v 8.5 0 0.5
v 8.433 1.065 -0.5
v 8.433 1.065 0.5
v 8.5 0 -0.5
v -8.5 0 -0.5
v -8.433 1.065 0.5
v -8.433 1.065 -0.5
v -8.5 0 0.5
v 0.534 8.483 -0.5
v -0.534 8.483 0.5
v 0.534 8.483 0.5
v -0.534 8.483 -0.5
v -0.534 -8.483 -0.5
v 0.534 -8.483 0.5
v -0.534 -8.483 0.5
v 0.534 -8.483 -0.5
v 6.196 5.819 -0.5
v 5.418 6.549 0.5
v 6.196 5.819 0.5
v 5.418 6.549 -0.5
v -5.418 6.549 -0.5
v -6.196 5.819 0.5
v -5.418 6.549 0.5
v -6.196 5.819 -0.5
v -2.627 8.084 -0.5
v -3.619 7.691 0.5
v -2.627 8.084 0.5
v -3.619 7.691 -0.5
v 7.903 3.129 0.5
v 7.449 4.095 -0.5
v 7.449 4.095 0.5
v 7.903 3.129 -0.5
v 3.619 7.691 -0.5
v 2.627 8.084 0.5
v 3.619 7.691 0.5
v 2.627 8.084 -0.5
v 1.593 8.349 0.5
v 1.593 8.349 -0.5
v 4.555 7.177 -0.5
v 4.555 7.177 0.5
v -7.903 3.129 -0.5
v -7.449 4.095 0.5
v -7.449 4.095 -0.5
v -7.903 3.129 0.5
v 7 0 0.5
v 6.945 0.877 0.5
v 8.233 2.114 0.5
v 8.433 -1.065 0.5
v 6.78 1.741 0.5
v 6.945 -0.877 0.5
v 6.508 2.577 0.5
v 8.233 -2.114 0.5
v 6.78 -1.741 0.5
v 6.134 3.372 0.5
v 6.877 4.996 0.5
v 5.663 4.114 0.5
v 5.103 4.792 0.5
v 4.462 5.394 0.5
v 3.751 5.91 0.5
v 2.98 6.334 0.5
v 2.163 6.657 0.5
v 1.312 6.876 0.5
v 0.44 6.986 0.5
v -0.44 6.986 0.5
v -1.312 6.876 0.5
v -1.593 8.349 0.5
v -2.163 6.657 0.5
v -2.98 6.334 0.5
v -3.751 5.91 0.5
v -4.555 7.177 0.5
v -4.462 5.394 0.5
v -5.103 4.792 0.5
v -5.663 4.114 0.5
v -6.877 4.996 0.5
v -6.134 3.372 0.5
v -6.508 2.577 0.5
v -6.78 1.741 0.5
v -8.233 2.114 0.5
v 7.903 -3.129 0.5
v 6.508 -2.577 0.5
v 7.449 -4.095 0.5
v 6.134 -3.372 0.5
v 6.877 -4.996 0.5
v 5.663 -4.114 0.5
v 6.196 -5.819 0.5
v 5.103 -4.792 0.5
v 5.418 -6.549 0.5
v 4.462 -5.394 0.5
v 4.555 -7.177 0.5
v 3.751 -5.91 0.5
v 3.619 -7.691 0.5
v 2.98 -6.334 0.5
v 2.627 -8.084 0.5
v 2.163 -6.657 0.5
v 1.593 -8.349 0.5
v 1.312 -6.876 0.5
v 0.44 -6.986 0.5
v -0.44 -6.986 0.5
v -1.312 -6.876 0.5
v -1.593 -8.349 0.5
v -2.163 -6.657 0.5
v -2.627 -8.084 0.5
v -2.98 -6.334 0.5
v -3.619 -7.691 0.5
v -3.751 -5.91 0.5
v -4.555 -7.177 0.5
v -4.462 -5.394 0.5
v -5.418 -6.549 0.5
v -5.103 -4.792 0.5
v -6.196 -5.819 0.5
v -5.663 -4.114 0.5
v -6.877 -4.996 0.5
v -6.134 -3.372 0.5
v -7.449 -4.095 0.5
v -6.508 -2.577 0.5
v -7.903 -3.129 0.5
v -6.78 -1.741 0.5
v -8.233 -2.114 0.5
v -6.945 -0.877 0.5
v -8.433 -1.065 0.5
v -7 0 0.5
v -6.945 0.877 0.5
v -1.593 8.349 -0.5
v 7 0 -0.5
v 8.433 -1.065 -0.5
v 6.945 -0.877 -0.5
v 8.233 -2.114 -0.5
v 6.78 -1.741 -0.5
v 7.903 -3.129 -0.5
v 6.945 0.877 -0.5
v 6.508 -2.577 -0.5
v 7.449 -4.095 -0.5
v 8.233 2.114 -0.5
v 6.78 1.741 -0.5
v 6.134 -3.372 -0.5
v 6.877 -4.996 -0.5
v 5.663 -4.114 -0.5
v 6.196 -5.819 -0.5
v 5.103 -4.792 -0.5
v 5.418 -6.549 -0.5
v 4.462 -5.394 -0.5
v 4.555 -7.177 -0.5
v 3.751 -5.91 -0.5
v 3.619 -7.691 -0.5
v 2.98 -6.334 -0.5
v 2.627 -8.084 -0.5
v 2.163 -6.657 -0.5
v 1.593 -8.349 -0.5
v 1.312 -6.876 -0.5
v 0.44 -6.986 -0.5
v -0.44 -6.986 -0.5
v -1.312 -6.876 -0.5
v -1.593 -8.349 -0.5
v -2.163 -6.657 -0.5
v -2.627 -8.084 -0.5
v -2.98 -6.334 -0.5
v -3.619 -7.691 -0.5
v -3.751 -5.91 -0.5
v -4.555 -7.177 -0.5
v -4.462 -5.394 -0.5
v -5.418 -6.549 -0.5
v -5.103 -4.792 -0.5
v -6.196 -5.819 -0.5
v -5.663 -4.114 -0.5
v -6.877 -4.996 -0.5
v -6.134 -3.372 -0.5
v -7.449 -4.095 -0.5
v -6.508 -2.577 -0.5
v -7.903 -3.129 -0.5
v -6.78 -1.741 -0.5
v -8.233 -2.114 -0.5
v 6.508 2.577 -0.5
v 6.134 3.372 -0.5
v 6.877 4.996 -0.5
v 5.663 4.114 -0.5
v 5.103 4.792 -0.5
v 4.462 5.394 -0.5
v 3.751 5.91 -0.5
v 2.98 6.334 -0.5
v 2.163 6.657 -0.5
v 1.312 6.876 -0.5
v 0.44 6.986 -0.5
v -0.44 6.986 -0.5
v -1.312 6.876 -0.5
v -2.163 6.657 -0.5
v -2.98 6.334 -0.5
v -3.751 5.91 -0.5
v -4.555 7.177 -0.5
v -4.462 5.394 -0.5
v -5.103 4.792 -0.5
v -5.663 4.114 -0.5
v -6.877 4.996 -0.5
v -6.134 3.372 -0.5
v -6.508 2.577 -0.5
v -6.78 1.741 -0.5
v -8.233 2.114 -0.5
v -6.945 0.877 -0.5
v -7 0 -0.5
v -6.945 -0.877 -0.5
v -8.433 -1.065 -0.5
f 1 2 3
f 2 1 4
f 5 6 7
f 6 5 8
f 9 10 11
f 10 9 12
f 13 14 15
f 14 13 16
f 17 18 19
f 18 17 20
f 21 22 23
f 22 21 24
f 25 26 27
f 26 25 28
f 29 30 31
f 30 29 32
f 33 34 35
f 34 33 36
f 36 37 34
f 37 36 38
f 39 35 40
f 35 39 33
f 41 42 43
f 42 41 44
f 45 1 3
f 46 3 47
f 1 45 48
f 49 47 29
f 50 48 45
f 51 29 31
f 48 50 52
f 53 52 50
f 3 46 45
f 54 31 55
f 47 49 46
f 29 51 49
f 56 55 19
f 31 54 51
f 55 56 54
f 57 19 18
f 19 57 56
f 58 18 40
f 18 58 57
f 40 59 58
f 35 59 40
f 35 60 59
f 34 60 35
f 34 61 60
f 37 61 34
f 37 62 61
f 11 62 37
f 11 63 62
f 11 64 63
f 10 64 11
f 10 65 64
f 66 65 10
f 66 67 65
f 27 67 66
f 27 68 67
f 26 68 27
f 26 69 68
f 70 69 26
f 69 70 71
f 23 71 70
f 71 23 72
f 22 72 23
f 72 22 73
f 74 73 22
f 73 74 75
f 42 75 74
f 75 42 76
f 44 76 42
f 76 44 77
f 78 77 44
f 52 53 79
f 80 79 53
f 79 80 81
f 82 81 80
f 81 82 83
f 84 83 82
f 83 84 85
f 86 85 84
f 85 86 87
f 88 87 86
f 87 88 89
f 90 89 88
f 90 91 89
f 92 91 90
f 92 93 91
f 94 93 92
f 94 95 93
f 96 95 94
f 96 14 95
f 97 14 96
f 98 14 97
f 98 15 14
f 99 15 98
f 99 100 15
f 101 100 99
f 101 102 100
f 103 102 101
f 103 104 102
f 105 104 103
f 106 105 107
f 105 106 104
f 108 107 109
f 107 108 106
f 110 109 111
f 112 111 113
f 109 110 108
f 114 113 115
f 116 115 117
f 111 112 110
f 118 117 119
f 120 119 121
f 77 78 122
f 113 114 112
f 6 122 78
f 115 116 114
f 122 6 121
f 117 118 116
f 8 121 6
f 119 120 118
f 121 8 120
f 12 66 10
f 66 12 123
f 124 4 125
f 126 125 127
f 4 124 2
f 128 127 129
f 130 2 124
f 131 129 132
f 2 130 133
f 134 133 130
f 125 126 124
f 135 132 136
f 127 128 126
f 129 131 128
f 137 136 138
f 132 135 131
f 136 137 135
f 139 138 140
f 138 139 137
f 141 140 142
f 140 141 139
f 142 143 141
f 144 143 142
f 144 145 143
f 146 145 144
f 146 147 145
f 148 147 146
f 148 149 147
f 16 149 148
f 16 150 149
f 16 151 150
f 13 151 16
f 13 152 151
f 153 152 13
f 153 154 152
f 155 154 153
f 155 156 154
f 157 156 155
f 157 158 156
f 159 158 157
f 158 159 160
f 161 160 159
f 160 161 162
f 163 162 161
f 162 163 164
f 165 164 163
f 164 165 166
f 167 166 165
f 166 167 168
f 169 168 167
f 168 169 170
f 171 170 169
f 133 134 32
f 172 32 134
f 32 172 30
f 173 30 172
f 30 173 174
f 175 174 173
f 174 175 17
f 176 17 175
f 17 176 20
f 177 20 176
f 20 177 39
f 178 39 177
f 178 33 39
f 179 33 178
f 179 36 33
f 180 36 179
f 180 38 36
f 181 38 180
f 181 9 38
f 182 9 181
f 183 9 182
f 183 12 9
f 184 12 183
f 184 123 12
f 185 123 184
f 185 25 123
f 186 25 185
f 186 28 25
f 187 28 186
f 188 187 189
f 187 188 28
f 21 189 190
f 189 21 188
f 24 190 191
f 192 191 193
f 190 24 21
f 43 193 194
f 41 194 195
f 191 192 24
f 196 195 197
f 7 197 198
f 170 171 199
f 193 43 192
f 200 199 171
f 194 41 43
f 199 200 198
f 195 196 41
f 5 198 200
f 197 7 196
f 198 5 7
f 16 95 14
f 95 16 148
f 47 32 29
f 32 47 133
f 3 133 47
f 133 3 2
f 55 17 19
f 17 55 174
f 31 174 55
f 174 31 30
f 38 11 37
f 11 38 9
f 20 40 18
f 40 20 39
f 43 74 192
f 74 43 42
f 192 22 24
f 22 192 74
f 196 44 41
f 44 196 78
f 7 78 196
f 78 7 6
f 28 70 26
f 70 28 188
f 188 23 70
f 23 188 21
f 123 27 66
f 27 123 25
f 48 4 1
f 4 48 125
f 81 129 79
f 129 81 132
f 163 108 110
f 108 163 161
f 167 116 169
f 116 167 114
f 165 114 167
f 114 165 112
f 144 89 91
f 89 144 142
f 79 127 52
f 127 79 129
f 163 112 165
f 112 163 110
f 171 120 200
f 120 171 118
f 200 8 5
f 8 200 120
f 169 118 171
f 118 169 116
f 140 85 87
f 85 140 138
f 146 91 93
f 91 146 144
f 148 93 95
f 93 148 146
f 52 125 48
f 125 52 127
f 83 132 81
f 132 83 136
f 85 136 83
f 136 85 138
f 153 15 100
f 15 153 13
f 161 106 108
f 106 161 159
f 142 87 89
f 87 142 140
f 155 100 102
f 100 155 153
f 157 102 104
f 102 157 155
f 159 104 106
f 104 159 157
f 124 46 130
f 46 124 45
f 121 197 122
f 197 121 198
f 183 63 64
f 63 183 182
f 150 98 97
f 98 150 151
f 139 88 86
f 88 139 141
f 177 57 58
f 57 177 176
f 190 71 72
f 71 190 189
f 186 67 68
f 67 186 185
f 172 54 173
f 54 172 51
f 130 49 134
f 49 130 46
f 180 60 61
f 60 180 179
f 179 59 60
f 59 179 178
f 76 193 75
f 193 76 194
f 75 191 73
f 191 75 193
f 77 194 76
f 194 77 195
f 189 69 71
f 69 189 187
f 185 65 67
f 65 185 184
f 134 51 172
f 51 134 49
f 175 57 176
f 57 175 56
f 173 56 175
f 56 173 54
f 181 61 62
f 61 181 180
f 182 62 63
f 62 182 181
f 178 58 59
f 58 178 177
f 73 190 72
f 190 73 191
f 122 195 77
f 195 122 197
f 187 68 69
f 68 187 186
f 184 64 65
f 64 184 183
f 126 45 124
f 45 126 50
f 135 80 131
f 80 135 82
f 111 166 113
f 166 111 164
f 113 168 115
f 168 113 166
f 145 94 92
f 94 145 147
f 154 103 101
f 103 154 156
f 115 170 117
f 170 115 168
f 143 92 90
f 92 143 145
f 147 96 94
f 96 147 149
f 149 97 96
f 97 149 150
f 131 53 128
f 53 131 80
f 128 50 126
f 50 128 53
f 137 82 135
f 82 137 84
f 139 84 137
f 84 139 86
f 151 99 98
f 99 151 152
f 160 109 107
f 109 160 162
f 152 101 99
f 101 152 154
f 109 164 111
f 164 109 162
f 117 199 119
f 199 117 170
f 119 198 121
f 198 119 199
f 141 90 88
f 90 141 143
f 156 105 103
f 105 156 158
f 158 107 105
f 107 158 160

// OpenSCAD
$fn = 50;


difference() {
	union() {
		translate(v = [0, 0, -0.5000000000]) {
			cylinder(h = 1, r = 8.5000000000);
		}
	}
	union() {
		translate(v = [0, 0, -100.0000000000]) {
			cylinder(h = 200, r = 7);
		}
	}
}
